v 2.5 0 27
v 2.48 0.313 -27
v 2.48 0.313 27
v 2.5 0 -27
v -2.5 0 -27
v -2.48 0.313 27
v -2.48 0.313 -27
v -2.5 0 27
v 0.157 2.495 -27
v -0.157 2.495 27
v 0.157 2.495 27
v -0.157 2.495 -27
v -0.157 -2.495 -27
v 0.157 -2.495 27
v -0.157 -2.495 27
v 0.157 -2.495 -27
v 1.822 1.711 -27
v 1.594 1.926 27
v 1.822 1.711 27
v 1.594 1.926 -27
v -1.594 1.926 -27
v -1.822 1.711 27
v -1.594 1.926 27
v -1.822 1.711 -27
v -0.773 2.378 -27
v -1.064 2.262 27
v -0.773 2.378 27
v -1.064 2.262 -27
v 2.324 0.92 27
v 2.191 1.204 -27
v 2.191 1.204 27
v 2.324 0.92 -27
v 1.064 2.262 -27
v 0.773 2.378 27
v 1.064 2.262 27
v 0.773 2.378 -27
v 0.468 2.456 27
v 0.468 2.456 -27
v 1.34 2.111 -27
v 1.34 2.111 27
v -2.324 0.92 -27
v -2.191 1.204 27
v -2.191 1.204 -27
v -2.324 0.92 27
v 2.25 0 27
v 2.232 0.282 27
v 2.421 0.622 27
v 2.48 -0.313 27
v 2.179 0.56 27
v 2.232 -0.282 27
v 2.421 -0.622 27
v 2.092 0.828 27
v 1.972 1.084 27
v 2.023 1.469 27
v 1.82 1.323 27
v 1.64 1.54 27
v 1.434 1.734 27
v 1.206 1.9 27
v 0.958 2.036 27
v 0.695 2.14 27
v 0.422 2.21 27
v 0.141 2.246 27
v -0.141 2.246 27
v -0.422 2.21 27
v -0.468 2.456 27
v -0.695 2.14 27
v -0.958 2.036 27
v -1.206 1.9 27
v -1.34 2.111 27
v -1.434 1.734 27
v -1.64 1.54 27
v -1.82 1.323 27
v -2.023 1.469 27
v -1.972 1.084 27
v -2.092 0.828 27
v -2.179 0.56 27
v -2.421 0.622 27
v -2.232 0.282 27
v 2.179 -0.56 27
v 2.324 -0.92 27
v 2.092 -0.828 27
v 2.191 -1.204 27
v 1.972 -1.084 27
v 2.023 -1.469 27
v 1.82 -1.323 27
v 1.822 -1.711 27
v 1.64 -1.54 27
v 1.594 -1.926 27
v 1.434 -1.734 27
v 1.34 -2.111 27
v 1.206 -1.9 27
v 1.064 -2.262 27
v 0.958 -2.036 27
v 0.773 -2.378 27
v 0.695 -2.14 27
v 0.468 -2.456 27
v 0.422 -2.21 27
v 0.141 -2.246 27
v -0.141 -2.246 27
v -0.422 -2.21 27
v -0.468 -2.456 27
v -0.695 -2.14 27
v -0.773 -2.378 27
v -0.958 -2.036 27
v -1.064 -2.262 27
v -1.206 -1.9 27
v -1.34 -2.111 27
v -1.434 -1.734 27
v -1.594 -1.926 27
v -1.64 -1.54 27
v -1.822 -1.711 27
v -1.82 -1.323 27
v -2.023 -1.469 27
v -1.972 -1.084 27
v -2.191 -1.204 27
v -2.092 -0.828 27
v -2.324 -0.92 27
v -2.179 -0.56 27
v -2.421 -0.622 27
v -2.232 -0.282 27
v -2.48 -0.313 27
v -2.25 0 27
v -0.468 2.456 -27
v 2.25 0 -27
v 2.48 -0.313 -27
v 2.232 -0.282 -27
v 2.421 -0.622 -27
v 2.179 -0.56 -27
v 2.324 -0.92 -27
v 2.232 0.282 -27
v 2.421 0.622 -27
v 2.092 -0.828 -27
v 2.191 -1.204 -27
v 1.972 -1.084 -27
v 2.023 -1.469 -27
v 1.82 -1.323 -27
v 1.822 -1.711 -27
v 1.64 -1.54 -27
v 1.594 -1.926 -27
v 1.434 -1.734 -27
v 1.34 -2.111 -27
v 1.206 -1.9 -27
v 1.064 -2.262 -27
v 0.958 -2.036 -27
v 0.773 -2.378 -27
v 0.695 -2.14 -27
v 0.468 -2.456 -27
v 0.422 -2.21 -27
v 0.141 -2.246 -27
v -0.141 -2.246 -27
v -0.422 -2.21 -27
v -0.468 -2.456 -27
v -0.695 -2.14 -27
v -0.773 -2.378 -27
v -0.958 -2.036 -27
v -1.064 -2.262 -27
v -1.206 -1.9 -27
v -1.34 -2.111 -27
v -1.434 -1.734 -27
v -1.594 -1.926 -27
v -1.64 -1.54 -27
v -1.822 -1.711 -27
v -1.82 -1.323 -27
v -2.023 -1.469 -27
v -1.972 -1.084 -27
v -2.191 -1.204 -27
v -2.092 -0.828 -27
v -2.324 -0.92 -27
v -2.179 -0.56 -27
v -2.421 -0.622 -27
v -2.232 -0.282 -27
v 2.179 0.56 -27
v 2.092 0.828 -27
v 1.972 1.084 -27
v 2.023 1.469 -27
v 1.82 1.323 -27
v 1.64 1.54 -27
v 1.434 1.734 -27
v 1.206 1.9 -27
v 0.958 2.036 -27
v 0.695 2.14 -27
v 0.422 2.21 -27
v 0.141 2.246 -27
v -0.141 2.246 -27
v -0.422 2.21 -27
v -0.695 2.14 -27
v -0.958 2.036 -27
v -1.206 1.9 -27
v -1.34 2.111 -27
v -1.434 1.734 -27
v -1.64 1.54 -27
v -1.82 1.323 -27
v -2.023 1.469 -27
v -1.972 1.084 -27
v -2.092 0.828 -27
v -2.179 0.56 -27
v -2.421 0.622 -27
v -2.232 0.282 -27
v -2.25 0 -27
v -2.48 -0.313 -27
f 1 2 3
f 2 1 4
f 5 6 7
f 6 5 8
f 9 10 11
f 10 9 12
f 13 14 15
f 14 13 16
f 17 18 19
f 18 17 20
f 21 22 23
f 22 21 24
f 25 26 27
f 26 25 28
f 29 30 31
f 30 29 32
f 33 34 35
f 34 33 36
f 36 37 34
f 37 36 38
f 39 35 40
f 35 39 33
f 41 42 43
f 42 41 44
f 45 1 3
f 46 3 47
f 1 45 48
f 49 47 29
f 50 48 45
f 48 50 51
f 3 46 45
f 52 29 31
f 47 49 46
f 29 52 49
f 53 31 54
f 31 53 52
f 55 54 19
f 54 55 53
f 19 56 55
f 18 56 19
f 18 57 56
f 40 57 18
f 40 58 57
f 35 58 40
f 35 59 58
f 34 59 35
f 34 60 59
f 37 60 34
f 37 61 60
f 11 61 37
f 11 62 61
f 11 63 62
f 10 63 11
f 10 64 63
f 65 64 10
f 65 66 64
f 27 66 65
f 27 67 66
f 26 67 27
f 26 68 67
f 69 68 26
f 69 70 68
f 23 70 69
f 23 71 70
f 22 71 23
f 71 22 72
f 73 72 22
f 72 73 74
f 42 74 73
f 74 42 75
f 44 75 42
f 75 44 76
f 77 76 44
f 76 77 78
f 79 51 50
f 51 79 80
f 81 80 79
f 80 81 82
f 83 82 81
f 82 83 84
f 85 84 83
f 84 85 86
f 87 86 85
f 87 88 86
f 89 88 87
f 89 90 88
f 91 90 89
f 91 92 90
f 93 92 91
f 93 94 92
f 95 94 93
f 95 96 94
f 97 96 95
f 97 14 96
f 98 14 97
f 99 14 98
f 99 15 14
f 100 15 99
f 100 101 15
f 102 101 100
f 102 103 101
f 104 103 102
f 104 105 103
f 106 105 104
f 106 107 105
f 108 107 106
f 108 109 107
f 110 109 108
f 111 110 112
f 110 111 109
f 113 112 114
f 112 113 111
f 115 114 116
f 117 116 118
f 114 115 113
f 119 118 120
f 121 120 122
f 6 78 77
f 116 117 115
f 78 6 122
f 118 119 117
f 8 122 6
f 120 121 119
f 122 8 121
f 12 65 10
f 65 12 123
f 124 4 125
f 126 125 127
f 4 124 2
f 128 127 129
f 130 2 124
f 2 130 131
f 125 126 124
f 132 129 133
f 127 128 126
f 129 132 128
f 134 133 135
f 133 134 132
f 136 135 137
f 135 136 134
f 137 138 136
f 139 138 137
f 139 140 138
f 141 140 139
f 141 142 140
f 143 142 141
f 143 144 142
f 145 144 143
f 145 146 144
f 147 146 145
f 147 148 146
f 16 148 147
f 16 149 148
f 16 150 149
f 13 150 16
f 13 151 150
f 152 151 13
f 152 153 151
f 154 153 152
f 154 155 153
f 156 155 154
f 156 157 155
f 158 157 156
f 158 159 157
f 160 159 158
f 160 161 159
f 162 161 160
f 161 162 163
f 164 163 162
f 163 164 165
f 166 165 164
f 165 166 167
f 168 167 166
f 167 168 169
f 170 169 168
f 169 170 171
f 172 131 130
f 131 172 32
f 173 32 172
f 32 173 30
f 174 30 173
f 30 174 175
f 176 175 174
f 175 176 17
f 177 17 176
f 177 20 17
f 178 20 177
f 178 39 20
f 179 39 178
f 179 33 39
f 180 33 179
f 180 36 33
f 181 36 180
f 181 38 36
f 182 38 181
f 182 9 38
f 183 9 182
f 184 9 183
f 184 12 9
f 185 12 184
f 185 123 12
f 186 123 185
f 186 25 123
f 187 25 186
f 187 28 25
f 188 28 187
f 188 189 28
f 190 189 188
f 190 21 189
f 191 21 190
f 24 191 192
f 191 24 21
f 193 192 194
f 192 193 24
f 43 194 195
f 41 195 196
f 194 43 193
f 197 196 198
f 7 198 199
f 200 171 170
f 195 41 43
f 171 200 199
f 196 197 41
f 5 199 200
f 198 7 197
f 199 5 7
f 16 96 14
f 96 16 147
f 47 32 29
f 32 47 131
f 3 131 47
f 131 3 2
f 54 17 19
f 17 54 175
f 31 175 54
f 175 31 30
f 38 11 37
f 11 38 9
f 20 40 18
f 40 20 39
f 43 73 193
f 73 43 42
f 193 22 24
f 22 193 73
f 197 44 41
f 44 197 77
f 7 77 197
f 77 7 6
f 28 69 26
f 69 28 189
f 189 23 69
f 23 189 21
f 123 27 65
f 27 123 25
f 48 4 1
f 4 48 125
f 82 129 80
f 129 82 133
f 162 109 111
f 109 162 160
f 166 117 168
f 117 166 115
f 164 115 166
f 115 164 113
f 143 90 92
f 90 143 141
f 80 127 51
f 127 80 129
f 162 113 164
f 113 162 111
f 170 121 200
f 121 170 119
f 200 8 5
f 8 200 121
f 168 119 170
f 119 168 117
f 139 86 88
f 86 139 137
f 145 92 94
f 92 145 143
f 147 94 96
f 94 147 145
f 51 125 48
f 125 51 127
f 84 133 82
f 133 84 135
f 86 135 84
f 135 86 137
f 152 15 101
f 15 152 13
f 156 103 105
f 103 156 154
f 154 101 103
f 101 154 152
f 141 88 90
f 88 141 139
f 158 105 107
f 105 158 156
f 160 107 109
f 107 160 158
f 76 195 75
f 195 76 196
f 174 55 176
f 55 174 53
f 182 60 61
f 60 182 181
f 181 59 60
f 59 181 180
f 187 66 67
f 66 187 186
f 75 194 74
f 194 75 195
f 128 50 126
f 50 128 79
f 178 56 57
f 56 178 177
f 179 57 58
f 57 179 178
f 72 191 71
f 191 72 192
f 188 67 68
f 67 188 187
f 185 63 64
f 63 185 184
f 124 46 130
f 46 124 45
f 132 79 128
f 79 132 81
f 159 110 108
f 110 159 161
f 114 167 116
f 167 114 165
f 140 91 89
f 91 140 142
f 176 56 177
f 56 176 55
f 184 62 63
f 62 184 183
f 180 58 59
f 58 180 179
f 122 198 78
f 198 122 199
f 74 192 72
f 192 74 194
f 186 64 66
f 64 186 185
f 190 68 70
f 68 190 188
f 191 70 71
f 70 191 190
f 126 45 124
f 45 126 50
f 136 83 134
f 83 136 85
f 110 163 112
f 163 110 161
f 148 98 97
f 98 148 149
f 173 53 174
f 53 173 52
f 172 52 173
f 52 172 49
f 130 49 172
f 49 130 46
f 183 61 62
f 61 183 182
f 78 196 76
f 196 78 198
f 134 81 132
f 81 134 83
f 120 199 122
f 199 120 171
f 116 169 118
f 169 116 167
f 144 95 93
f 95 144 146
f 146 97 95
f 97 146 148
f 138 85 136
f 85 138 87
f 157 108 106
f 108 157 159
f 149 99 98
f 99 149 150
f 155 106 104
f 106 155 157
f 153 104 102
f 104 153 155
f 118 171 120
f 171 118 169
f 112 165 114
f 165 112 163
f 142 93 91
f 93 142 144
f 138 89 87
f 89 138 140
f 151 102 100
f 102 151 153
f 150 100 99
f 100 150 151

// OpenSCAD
$fn = 50;


difference() {
	union() {
		translate(v = [0, 0, -27.0000000000]) {
			cylinder(h = 54, r = 2.5000000000);
		}
	}
	union() {
		translate(v = [0, 0, -100.0000000000]) {
			cylinder(h = 200, r = 2.2500000000);
		}
	}
}
